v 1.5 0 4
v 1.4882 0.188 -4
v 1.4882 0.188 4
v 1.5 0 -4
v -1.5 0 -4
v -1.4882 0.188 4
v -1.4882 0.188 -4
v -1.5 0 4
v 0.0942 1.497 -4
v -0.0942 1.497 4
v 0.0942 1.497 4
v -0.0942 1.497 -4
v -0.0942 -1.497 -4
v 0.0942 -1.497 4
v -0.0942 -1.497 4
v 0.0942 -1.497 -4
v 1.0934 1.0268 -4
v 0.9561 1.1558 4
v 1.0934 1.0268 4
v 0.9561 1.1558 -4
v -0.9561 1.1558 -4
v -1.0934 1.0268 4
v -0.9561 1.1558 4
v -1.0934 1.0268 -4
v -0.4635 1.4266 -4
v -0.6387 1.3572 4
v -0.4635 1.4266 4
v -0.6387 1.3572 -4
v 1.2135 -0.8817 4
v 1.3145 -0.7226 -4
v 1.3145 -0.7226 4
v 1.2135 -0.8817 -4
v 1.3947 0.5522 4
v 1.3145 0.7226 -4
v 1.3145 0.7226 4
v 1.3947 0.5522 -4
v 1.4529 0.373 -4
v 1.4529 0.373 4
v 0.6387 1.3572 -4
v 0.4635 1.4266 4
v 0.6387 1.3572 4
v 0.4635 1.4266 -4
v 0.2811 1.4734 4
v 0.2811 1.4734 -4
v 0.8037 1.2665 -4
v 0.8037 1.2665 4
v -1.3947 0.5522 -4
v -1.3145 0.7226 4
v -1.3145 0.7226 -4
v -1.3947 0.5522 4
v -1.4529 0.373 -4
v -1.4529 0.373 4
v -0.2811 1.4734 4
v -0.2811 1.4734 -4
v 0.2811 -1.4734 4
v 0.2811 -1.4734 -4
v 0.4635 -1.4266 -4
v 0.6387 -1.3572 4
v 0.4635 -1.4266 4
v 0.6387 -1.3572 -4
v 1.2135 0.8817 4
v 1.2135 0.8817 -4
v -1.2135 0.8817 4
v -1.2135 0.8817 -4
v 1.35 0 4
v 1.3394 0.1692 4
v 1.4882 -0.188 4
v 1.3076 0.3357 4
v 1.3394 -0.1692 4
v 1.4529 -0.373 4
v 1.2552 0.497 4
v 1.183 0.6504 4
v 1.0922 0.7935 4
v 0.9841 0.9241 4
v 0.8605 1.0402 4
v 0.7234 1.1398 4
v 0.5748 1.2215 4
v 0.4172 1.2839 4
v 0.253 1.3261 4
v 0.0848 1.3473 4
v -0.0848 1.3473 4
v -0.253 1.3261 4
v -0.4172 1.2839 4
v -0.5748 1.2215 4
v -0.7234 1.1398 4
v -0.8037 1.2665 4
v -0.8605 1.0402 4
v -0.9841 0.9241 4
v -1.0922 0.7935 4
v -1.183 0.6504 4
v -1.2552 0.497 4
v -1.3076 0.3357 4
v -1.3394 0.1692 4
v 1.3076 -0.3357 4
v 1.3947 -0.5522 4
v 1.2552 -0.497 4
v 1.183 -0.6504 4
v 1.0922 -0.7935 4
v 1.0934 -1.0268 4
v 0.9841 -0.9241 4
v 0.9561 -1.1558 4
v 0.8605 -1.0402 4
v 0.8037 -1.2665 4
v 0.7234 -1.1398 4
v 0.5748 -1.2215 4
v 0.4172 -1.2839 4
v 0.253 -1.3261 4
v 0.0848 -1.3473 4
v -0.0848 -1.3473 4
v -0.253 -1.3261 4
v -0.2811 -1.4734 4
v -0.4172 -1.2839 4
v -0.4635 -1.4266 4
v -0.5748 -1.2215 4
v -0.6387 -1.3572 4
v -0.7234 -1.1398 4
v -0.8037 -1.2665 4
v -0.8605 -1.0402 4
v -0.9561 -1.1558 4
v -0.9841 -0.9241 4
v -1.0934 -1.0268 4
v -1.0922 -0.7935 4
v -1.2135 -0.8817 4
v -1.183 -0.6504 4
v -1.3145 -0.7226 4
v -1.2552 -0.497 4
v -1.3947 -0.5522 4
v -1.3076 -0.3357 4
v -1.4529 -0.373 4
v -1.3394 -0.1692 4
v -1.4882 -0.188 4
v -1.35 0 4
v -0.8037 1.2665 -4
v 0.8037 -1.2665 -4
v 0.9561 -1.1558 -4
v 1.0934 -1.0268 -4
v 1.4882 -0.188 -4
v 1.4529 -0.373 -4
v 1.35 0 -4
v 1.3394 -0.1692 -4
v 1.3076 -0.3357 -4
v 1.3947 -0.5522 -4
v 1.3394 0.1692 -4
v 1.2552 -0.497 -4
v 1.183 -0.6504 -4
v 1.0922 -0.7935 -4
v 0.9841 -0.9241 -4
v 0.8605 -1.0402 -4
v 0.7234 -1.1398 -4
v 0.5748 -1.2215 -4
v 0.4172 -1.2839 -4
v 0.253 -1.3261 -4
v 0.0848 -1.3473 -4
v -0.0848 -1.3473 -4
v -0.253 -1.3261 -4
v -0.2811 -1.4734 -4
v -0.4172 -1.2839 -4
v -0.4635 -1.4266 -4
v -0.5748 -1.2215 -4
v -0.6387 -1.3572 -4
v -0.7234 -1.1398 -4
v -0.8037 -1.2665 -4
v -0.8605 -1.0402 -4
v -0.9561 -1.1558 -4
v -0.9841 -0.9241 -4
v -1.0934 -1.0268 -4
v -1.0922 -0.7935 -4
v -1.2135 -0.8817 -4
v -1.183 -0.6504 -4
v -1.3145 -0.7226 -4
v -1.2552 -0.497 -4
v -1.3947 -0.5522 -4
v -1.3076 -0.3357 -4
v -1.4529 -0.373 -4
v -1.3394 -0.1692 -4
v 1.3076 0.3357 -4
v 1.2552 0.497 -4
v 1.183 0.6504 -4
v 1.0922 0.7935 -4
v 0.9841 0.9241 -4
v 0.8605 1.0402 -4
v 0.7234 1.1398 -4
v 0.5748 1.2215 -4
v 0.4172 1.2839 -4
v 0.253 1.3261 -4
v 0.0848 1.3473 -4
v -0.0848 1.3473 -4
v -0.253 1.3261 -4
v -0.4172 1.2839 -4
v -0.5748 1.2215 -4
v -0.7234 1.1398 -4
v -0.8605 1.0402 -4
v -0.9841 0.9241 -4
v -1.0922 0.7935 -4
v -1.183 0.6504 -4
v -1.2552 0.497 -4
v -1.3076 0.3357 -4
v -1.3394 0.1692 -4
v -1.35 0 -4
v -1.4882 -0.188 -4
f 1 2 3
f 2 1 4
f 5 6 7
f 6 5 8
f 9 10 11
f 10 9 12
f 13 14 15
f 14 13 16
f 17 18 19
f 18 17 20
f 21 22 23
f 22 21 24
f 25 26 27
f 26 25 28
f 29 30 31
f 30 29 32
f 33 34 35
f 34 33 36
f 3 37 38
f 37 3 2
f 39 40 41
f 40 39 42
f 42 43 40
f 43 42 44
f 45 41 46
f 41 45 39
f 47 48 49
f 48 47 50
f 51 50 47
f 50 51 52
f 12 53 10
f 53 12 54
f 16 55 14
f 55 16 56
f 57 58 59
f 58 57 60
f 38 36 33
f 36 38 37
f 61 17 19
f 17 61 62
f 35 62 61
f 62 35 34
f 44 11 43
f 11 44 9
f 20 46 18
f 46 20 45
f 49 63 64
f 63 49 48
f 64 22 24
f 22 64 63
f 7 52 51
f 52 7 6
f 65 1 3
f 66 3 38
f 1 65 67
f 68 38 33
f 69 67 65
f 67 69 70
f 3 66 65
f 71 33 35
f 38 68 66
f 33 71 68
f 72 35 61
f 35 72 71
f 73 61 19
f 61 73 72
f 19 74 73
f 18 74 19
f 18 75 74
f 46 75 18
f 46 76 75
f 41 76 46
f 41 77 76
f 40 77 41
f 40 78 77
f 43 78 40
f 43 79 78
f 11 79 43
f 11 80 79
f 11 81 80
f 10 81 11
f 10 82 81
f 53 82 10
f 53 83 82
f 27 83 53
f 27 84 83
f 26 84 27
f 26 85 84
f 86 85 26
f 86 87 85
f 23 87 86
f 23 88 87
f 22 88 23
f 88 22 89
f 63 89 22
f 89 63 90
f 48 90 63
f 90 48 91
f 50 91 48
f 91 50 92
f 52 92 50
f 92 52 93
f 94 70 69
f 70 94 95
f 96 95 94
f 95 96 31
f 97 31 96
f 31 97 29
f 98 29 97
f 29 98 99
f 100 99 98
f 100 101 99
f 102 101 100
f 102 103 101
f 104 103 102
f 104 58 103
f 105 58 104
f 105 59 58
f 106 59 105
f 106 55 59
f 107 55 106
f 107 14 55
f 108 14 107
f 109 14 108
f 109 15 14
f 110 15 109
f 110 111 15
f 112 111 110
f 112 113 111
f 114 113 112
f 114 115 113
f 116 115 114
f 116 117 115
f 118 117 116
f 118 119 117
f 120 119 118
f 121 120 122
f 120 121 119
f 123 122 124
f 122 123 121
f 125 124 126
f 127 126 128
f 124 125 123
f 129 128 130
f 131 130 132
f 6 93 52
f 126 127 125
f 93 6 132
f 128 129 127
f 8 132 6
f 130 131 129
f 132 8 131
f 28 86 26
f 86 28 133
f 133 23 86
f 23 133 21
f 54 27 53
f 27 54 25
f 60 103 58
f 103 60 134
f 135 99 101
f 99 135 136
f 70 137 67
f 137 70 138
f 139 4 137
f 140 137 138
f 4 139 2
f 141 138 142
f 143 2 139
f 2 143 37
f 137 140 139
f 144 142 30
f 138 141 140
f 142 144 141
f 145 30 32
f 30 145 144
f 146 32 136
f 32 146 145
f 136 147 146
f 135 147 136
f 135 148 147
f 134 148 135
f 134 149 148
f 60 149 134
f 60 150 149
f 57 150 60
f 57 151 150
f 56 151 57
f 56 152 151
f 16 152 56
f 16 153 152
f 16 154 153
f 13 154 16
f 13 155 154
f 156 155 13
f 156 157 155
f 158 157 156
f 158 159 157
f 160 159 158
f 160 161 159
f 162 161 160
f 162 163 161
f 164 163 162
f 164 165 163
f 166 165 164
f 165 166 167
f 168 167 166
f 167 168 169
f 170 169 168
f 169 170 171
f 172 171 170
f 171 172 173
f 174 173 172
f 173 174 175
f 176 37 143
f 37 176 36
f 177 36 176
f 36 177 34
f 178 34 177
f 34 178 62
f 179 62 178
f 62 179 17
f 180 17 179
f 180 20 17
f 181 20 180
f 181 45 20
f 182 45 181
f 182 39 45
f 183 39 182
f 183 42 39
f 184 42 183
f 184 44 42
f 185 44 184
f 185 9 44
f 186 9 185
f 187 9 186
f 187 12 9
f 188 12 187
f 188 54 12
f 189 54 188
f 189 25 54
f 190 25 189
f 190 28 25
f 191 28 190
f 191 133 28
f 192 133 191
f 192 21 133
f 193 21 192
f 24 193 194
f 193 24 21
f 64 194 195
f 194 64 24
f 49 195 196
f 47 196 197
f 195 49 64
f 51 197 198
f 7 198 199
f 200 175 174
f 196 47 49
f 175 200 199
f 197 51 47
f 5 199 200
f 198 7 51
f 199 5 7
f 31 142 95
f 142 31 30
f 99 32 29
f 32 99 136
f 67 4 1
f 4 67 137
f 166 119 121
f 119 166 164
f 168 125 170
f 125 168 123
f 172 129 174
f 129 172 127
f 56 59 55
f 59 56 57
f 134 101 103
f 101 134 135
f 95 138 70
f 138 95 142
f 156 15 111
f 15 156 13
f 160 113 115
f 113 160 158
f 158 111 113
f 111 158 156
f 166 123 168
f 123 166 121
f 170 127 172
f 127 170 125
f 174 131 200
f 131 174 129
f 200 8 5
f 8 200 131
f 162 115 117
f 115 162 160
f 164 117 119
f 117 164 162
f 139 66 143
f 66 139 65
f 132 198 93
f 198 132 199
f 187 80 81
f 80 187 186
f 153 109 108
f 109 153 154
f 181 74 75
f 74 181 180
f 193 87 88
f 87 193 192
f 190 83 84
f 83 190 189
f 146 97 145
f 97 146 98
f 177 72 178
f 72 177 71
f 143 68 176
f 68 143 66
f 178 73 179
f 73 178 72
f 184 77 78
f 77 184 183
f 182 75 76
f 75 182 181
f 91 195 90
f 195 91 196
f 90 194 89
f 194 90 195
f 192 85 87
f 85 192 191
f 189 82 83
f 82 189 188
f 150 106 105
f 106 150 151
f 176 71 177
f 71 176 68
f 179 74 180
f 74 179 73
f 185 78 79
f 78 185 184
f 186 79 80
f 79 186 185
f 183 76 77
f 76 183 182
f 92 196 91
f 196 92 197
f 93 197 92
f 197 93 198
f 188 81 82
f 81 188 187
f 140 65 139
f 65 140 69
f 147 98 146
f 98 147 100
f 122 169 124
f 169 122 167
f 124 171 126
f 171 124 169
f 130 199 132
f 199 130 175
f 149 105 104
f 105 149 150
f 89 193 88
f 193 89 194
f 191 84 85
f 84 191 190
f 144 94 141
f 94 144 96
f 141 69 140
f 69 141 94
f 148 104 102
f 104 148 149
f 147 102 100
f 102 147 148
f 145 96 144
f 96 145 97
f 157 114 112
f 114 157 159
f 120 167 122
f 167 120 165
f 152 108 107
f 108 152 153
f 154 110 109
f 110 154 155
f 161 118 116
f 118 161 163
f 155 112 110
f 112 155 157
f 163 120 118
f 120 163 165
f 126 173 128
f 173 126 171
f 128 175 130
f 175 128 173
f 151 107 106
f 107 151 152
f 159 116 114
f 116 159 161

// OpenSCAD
$fn = 50;


difference() {
	union() {
		translate(v = [0, 0, -4.0000000000]) {
			cylinder(h = 8, r = 1.5000000000);
		}
	}
	union() {
		translate(v = [0, 0, -100.0000000000]) {
			cylinder(h = 200, r = 1.3500000000);
		}
	}
}
